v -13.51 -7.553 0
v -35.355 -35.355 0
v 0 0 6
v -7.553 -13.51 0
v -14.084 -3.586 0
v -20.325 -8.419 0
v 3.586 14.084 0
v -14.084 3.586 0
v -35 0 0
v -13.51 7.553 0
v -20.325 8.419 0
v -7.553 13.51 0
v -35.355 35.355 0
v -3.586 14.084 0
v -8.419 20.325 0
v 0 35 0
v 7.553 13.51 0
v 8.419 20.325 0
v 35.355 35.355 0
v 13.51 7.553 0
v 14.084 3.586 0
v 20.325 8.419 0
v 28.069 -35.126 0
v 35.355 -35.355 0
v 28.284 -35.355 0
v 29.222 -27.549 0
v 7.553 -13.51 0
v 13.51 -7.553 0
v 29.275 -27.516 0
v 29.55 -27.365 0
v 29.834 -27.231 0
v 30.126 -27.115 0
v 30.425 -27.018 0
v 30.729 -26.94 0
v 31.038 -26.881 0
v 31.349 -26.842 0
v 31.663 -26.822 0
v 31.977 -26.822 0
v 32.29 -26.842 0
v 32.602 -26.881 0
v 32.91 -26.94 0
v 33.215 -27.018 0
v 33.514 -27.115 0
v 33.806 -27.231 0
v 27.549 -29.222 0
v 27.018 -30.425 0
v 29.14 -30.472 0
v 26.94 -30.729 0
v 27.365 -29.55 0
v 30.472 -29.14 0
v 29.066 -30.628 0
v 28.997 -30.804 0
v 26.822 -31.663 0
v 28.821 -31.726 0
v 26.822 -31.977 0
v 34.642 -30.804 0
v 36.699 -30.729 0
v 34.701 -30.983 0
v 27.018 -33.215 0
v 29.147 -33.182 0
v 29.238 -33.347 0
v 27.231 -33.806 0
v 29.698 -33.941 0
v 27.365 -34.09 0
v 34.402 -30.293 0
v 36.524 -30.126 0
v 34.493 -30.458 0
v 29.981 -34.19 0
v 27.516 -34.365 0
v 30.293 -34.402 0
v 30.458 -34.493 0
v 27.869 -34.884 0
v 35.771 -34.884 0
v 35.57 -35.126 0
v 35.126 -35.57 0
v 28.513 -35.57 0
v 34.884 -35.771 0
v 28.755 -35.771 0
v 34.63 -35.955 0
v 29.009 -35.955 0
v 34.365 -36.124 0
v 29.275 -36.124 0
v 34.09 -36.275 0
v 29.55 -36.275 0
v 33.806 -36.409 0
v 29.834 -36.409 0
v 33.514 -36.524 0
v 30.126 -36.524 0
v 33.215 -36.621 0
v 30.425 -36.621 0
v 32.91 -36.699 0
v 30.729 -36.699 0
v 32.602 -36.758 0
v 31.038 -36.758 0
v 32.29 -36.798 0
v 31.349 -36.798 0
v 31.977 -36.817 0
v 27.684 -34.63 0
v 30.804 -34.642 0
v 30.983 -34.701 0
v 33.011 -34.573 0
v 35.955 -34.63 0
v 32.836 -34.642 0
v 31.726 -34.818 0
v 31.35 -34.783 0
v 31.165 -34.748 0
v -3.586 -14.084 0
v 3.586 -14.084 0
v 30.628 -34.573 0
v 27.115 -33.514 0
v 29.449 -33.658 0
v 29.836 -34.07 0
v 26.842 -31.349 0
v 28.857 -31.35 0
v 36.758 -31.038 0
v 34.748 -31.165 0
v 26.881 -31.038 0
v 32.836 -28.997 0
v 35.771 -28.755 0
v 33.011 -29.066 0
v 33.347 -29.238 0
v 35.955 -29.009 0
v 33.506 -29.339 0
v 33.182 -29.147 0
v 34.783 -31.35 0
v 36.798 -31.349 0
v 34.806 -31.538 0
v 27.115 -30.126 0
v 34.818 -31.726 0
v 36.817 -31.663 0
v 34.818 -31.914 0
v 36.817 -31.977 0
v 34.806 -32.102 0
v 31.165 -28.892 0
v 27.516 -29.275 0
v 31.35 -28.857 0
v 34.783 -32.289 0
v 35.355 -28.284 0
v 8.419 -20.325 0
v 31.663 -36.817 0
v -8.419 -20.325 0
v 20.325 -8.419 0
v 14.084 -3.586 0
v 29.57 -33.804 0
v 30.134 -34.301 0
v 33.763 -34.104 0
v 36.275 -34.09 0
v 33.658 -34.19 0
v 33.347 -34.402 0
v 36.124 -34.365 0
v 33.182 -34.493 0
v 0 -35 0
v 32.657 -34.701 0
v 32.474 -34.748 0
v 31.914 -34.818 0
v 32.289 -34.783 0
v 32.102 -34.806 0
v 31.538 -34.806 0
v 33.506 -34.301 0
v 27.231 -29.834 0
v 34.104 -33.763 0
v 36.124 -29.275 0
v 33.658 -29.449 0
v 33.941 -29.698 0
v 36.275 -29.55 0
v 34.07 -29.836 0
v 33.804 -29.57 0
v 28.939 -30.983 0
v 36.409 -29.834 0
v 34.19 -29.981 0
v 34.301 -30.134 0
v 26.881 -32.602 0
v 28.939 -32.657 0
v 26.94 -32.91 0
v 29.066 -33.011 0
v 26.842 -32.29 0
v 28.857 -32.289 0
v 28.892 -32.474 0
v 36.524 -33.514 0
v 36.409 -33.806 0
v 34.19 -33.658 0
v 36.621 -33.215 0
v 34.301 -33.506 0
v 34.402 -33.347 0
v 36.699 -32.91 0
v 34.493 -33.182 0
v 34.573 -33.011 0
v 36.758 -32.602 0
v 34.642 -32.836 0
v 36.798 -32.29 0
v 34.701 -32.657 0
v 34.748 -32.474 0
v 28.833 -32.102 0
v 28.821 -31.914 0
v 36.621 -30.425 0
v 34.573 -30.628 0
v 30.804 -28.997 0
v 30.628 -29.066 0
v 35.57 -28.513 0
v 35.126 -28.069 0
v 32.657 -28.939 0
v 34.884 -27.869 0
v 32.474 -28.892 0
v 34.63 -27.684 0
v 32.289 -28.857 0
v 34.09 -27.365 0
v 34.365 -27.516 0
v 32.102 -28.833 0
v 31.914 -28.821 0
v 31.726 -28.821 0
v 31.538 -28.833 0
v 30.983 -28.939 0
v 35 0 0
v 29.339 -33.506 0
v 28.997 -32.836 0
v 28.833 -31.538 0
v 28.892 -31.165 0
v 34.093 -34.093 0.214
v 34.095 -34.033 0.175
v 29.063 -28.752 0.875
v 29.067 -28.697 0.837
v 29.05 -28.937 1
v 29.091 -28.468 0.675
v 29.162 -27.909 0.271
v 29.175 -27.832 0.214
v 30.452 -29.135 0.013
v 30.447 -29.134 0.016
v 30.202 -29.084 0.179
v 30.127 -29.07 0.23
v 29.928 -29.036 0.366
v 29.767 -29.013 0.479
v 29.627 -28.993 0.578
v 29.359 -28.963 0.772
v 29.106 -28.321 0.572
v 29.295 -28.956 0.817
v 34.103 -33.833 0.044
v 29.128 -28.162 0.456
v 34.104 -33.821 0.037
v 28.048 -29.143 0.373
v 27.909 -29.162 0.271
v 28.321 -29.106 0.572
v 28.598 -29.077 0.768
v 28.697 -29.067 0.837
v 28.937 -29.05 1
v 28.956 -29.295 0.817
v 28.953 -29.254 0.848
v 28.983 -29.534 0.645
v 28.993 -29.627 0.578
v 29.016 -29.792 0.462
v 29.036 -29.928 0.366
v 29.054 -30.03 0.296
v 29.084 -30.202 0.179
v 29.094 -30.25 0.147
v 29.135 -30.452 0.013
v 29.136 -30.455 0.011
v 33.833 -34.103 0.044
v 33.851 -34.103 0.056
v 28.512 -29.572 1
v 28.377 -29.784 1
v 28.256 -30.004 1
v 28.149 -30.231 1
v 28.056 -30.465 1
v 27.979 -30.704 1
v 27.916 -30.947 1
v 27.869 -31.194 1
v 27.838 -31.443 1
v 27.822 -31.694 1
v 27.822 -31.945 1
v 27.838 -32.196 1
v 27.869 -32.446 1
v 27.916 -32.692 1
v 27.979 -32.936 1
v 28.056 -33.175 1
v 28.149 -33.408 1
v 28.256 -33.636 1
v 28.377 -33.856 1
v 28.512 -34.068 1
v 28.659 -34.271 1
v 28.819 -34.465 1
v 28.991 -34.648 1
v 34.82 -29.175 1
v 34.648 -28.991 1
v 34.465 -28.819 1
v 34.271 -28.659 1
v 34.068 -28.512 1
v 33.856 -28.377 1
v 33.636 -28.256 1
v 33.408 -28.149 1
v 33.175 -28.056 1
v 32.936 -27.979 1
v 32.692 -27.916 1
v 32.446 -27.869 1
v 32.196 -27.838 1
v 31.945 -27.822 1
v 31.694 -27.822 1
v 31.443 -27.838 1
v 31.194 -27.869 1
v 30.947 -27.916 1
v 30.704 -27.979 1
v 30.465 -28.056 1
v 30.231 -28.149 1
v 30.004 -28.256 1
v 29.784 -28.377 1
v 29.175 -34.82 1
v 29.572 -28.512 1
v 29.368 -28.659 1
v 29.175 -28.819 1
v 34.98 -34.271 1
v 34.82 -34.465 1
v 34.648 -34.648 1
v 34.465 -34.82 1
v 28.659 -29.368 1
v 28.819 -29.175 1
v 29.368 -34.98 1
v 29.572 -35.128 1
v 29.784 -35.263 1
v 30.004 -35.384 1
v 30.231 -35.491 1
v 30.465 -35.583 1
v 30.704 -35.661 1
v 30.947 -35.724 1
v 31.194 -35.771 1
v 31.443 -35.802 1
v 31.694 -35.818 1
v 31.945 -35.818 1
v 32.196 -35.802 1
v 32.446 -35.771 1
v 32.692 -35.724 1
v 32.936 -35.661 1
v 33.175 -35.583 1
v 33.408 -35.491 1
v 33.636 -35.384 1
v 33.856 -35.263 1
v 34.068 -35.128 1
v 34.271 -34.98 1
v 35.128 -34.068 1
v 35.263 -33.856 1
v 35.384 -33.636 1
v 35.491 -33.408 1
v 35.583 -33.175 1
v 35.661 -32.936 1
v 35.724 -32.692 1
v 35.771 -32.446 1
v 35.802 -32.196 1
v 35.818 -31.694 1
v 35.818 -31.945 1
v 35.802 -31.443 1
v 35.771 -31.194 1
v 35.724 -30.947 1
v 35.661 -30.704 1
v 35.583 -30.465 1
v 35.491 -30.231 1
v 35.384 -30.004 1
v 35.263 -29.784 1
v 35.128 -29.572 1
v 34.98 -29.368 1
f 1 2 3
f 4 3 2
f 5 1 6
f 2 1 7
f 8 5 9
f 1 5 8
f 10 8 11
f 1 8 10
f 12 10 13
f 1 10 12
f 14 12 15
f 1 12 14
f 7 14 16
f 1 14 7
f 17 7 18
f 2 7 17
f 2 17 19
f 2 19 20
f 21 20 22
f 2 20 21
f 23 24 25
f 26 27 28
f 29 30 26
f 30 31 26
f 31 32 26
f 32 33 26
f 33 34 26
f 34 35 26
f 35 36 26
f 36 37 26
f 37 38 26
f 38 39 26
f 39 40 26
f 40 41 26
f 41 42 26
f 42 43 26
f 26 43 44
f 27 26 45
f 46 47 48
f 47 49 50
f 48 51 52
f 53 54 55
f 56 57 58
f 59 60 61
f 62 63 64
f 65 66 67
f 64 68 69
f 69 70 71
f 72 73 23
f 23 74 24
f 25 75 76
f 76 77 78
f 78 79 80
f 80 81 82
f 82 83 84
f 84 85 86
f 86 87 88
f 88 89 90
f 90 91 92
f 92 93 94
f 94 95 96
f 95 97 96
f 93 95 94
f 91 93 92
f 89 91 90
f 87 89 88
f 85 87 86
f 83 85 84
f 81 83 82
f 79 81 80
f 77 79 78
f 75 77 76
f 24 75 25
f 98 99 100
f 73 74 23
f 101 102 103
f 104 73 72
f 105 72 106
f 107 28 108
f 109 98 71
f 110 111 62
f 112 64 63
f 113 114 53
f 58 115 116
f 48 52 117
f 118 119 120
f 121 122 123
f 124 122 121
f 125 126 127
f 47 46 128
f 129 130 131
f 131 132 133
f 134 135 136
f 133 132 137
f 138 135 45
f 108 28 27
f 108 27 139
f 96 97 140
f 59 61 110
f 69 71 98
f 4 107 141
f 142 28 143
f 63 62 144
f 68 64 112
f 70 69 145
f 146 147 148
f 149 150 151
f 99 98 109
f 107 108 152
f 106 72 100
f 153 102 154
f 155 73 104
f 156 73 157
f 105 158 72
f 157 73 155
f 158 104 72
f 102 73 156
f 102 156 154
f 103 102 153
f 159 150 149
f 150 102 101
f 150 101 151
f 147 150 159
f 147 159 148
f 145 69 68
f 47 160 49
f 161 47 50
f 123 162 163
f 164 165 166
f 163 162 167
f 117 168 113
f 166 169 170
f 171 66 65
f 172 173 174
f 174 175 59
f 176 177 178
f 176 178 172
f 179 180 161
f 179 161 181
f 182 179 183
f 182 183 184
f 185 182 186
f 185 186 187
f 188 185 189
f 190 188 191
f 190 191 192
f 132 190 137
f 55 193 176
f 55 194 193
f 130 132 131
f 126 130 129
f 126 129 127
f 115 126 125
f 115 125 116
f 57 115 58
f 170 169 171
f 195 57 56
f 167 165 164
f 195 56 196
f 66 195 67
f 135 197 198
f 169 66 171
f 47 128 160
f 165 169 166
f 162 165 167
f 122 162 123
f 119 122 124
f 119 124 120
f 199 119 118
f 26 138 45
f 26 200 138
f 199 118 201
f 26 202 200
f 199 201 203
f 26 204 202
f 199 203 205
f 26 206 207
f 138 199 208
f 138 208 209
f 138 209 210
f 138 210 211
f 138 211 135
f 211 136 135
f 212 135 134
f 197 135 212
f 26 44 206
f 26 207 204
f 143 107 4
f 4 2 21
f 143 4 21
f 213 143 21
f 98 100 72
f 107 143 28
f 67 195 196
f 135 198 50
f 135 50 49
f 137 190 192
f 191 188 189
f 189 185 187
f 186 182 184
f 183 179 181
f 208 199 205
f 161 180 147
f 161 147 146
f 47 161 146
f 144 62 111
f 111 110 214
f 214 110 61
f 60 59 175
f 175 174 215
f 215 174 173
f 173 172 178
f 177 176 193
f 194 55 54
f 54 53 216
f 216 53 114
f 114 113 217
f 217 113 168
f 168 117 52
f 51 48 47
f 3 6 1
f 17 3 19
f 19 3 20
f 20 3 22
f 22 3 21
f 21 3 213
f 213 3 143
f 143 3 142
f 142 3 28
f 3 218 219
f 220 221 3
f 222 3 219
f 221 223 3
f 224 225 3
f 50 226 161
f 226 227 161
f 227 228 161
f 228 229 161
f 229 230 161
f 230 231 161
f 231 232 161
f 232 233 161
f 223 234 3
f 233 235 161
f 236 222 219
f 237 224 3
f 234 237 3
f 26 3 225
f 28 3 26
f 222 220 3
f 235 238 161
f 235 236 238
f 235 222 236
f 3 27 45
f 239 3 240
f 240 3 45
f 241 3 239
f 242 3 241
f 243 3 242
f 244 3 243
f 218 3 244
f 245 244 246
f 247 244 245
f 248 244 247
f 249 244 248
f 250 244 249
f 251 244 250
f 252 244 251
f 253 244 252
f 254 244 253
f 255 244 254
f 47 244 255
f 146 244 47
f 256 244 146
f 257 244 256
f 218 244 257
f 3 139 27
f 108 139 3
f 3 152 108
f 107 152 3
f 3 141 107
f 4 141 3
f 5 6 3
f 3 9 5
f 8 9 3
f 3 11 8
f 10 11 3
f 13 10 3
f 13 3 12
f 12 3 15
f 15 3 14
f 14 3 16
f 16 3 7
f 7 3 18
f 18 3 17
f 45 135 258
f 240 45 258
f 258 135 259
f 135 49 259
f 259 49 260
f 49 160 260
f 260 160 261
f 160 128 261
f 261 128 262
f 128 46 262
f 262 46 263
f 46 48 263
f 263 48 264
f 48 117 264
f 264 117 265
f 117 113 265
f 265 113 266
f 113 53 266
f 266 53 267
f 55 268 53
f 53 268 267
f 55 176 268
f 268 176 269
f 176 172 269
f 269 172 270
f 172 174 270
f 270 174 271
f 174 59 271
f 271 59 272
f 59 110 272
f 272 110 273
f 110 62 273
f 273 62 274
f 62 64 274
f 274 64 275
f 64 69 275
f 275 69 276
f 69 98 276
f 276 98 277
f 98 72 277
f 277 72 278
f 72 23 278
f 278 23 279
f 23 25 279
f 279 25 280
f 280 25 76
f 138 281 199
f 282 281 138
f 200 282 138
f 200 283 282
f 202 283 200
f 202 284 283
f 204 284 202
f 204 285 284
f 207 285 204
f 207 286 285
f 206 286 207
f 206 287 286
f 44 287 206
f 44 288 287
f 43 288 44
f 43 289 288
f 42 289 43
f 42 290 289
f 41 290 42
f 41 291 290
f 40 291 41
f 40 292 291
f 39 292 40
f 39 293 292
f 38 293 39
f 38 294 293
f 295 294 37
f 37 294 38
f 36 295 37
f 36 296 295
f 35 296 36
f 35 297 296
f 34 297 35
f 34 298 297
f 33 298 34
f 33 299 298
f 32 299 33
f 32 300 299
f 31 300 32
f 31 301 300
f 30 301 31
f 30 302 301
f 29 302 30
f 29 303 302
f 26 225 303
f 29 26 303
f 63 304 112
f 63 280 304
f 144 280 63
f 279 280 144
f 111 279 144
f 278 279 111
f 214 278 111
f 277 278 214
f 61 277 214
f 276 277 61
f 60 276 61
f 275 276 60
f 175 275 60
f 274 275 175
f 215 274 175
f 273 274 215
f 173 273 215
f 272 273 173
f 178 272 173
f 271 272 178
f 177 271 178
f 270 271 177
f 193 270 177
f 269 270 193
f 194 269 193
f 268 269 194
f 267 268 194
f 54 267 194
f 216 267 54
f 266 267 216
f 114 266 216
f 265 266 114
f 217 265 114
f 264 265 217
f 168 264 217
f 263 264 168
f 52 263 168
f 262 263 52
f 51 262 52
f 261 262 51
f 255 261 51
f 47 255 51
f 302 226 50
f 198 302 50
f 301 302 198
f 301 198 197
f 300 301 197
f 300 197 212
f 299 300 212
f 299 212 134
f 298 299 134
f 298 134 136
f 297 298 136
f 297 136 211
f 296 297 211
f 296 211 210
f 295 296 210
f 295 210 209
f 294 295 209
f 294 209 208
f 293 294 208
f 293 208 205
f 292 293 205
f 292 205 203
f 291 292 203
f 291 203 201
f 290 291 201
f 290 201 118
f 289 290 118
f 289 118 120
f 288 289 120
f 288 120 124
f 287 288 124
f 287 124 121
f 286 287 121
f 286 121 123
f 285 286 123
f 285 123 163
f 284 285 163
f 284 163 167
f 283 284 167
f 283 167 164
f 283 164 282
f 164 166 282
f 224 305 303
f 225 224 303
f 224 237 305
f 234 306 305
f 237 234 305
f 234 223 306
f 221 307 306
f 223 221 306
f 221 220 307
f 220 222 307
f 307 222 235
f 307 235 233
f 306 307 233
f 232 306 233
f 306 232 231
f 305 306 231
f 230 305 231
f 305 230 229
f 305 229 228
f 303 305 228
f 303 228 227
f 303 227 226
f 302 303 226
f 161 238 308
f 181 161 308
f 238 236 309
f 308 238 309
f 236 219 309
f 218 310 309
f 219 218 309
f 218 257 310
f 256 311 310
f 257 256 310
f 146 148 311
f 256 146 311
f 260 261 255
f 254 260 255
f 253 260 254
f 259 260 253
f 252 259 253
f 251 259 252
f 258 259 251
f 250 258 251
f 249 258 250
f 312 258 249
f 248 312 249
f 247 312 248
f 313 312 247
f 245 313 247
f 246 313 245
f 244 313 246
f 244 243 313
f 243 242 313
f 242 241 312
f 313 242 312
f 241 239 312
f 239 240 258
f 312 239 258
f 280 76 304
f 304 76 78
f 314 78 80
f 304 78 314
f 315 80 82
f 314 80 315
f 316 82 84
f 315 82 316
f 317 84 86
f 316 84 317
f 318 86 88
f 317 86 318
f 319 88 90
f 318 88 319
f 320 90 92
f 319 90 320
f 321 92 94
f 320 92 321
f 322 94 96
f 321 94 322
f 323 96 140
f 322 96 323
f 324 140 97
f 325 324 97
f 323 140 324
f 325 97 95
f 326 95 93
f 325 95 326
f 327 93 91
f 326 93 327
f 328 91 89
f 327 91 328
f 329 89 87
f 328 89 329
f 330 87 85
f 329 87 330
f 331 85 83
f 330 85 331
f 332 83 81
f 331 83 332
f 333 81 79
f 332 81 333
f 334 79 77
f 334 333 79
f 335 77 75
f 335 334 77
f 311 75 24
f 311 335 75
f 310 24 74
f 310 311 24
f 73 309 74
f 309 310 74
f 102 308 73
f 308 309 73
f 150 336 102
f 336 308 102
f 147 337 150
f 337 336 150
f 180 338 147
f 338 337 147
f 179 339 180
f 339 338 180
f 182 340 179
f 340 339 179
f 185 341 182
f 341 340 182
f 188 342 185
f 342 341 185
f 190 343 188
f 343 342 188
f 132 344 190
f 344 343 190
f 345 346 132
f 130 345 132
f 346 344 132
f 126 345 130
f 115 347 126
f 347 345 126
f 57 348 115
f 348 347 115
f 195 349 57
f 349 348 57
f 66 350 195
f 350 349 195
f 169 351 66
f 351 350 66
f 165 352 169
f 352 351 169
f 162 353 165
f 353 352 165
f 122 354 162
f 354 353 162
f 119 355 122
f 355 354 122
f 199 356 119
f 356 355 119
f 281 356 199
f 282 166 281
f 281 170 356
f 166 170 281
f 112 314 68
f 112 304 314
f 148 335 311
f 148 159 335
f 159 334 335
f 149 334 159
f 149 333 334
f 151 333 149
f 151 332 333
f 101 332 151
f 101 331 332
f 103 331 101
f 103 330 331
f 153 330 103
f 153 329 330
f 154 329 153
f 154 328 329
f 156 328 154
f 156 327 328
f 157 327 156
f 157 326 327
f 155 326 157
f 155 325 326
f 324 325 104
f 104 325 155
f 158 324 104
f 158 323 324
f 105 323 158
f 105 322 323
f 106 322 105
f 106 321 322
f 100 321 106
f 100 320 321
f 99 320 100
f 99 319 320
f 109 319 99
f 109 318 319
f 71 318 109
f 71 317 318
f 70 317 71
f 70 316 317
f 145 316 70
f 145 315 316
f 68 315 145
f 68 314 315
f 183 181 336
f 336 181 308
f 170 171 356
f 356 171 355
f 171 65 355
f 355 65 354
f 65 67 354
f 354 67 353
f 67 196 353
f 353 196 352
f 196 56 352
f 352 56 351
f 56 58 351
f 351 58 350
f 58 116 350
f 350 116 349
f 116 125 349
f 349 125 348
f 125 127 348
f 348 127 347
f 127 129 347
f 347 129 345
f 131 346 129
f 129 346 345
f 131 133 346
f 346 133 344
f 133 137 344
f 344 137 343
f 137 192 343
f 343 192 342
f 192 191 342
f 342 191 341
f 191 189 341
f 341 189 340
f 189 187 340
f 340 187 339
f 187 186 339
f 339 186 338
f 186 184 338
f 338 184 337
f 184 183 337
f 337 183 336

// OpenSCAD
module star(lpoint=14,spoint=9,npoints=4,depth=3,miniSize=0) {
	// each point is a 4 sided cone
	for (point=[0:npoints-1]) {
		// long point
		rotate([0,(360/npoints)*point,0]) cylinder(lpoint,depth,0,$fn=4);
		// short point
		rotate([0,(180/npoints)+(360/npoints)*point,0]) cylinder(spoint,depth,0,$fn=4);
		if (miniSize > 0) {
			rotate([0,((180/npoints)+(90/npoints))+(360/npoints)*point,0]) cylinder(miniSize,depth,0,$fn=4);
			rotate([0,((180/npoints)-(90/npoints))+(360/npoints)*point,0]) cylinder(miniSize,depth,0,$fn=4);
		}
	}
}
module mainstar() {
	intersection() {
		union() {
			rotate([90,0,0])star(50,35,4,6,22);
			// add loop on top
			translate([0,-45,0])
				rotate([90,0,0])rotate([90,0,0])
					rotate_extrude(convexity = 10, $fn = 100) 
						translate([4, 0, 0]) circle(r = 1, $fn = 4);
			
		}
		translate([0,0,50])cube([150,150,100],center=true);
	}
}
rotate([0,0,45]) mainstar();
